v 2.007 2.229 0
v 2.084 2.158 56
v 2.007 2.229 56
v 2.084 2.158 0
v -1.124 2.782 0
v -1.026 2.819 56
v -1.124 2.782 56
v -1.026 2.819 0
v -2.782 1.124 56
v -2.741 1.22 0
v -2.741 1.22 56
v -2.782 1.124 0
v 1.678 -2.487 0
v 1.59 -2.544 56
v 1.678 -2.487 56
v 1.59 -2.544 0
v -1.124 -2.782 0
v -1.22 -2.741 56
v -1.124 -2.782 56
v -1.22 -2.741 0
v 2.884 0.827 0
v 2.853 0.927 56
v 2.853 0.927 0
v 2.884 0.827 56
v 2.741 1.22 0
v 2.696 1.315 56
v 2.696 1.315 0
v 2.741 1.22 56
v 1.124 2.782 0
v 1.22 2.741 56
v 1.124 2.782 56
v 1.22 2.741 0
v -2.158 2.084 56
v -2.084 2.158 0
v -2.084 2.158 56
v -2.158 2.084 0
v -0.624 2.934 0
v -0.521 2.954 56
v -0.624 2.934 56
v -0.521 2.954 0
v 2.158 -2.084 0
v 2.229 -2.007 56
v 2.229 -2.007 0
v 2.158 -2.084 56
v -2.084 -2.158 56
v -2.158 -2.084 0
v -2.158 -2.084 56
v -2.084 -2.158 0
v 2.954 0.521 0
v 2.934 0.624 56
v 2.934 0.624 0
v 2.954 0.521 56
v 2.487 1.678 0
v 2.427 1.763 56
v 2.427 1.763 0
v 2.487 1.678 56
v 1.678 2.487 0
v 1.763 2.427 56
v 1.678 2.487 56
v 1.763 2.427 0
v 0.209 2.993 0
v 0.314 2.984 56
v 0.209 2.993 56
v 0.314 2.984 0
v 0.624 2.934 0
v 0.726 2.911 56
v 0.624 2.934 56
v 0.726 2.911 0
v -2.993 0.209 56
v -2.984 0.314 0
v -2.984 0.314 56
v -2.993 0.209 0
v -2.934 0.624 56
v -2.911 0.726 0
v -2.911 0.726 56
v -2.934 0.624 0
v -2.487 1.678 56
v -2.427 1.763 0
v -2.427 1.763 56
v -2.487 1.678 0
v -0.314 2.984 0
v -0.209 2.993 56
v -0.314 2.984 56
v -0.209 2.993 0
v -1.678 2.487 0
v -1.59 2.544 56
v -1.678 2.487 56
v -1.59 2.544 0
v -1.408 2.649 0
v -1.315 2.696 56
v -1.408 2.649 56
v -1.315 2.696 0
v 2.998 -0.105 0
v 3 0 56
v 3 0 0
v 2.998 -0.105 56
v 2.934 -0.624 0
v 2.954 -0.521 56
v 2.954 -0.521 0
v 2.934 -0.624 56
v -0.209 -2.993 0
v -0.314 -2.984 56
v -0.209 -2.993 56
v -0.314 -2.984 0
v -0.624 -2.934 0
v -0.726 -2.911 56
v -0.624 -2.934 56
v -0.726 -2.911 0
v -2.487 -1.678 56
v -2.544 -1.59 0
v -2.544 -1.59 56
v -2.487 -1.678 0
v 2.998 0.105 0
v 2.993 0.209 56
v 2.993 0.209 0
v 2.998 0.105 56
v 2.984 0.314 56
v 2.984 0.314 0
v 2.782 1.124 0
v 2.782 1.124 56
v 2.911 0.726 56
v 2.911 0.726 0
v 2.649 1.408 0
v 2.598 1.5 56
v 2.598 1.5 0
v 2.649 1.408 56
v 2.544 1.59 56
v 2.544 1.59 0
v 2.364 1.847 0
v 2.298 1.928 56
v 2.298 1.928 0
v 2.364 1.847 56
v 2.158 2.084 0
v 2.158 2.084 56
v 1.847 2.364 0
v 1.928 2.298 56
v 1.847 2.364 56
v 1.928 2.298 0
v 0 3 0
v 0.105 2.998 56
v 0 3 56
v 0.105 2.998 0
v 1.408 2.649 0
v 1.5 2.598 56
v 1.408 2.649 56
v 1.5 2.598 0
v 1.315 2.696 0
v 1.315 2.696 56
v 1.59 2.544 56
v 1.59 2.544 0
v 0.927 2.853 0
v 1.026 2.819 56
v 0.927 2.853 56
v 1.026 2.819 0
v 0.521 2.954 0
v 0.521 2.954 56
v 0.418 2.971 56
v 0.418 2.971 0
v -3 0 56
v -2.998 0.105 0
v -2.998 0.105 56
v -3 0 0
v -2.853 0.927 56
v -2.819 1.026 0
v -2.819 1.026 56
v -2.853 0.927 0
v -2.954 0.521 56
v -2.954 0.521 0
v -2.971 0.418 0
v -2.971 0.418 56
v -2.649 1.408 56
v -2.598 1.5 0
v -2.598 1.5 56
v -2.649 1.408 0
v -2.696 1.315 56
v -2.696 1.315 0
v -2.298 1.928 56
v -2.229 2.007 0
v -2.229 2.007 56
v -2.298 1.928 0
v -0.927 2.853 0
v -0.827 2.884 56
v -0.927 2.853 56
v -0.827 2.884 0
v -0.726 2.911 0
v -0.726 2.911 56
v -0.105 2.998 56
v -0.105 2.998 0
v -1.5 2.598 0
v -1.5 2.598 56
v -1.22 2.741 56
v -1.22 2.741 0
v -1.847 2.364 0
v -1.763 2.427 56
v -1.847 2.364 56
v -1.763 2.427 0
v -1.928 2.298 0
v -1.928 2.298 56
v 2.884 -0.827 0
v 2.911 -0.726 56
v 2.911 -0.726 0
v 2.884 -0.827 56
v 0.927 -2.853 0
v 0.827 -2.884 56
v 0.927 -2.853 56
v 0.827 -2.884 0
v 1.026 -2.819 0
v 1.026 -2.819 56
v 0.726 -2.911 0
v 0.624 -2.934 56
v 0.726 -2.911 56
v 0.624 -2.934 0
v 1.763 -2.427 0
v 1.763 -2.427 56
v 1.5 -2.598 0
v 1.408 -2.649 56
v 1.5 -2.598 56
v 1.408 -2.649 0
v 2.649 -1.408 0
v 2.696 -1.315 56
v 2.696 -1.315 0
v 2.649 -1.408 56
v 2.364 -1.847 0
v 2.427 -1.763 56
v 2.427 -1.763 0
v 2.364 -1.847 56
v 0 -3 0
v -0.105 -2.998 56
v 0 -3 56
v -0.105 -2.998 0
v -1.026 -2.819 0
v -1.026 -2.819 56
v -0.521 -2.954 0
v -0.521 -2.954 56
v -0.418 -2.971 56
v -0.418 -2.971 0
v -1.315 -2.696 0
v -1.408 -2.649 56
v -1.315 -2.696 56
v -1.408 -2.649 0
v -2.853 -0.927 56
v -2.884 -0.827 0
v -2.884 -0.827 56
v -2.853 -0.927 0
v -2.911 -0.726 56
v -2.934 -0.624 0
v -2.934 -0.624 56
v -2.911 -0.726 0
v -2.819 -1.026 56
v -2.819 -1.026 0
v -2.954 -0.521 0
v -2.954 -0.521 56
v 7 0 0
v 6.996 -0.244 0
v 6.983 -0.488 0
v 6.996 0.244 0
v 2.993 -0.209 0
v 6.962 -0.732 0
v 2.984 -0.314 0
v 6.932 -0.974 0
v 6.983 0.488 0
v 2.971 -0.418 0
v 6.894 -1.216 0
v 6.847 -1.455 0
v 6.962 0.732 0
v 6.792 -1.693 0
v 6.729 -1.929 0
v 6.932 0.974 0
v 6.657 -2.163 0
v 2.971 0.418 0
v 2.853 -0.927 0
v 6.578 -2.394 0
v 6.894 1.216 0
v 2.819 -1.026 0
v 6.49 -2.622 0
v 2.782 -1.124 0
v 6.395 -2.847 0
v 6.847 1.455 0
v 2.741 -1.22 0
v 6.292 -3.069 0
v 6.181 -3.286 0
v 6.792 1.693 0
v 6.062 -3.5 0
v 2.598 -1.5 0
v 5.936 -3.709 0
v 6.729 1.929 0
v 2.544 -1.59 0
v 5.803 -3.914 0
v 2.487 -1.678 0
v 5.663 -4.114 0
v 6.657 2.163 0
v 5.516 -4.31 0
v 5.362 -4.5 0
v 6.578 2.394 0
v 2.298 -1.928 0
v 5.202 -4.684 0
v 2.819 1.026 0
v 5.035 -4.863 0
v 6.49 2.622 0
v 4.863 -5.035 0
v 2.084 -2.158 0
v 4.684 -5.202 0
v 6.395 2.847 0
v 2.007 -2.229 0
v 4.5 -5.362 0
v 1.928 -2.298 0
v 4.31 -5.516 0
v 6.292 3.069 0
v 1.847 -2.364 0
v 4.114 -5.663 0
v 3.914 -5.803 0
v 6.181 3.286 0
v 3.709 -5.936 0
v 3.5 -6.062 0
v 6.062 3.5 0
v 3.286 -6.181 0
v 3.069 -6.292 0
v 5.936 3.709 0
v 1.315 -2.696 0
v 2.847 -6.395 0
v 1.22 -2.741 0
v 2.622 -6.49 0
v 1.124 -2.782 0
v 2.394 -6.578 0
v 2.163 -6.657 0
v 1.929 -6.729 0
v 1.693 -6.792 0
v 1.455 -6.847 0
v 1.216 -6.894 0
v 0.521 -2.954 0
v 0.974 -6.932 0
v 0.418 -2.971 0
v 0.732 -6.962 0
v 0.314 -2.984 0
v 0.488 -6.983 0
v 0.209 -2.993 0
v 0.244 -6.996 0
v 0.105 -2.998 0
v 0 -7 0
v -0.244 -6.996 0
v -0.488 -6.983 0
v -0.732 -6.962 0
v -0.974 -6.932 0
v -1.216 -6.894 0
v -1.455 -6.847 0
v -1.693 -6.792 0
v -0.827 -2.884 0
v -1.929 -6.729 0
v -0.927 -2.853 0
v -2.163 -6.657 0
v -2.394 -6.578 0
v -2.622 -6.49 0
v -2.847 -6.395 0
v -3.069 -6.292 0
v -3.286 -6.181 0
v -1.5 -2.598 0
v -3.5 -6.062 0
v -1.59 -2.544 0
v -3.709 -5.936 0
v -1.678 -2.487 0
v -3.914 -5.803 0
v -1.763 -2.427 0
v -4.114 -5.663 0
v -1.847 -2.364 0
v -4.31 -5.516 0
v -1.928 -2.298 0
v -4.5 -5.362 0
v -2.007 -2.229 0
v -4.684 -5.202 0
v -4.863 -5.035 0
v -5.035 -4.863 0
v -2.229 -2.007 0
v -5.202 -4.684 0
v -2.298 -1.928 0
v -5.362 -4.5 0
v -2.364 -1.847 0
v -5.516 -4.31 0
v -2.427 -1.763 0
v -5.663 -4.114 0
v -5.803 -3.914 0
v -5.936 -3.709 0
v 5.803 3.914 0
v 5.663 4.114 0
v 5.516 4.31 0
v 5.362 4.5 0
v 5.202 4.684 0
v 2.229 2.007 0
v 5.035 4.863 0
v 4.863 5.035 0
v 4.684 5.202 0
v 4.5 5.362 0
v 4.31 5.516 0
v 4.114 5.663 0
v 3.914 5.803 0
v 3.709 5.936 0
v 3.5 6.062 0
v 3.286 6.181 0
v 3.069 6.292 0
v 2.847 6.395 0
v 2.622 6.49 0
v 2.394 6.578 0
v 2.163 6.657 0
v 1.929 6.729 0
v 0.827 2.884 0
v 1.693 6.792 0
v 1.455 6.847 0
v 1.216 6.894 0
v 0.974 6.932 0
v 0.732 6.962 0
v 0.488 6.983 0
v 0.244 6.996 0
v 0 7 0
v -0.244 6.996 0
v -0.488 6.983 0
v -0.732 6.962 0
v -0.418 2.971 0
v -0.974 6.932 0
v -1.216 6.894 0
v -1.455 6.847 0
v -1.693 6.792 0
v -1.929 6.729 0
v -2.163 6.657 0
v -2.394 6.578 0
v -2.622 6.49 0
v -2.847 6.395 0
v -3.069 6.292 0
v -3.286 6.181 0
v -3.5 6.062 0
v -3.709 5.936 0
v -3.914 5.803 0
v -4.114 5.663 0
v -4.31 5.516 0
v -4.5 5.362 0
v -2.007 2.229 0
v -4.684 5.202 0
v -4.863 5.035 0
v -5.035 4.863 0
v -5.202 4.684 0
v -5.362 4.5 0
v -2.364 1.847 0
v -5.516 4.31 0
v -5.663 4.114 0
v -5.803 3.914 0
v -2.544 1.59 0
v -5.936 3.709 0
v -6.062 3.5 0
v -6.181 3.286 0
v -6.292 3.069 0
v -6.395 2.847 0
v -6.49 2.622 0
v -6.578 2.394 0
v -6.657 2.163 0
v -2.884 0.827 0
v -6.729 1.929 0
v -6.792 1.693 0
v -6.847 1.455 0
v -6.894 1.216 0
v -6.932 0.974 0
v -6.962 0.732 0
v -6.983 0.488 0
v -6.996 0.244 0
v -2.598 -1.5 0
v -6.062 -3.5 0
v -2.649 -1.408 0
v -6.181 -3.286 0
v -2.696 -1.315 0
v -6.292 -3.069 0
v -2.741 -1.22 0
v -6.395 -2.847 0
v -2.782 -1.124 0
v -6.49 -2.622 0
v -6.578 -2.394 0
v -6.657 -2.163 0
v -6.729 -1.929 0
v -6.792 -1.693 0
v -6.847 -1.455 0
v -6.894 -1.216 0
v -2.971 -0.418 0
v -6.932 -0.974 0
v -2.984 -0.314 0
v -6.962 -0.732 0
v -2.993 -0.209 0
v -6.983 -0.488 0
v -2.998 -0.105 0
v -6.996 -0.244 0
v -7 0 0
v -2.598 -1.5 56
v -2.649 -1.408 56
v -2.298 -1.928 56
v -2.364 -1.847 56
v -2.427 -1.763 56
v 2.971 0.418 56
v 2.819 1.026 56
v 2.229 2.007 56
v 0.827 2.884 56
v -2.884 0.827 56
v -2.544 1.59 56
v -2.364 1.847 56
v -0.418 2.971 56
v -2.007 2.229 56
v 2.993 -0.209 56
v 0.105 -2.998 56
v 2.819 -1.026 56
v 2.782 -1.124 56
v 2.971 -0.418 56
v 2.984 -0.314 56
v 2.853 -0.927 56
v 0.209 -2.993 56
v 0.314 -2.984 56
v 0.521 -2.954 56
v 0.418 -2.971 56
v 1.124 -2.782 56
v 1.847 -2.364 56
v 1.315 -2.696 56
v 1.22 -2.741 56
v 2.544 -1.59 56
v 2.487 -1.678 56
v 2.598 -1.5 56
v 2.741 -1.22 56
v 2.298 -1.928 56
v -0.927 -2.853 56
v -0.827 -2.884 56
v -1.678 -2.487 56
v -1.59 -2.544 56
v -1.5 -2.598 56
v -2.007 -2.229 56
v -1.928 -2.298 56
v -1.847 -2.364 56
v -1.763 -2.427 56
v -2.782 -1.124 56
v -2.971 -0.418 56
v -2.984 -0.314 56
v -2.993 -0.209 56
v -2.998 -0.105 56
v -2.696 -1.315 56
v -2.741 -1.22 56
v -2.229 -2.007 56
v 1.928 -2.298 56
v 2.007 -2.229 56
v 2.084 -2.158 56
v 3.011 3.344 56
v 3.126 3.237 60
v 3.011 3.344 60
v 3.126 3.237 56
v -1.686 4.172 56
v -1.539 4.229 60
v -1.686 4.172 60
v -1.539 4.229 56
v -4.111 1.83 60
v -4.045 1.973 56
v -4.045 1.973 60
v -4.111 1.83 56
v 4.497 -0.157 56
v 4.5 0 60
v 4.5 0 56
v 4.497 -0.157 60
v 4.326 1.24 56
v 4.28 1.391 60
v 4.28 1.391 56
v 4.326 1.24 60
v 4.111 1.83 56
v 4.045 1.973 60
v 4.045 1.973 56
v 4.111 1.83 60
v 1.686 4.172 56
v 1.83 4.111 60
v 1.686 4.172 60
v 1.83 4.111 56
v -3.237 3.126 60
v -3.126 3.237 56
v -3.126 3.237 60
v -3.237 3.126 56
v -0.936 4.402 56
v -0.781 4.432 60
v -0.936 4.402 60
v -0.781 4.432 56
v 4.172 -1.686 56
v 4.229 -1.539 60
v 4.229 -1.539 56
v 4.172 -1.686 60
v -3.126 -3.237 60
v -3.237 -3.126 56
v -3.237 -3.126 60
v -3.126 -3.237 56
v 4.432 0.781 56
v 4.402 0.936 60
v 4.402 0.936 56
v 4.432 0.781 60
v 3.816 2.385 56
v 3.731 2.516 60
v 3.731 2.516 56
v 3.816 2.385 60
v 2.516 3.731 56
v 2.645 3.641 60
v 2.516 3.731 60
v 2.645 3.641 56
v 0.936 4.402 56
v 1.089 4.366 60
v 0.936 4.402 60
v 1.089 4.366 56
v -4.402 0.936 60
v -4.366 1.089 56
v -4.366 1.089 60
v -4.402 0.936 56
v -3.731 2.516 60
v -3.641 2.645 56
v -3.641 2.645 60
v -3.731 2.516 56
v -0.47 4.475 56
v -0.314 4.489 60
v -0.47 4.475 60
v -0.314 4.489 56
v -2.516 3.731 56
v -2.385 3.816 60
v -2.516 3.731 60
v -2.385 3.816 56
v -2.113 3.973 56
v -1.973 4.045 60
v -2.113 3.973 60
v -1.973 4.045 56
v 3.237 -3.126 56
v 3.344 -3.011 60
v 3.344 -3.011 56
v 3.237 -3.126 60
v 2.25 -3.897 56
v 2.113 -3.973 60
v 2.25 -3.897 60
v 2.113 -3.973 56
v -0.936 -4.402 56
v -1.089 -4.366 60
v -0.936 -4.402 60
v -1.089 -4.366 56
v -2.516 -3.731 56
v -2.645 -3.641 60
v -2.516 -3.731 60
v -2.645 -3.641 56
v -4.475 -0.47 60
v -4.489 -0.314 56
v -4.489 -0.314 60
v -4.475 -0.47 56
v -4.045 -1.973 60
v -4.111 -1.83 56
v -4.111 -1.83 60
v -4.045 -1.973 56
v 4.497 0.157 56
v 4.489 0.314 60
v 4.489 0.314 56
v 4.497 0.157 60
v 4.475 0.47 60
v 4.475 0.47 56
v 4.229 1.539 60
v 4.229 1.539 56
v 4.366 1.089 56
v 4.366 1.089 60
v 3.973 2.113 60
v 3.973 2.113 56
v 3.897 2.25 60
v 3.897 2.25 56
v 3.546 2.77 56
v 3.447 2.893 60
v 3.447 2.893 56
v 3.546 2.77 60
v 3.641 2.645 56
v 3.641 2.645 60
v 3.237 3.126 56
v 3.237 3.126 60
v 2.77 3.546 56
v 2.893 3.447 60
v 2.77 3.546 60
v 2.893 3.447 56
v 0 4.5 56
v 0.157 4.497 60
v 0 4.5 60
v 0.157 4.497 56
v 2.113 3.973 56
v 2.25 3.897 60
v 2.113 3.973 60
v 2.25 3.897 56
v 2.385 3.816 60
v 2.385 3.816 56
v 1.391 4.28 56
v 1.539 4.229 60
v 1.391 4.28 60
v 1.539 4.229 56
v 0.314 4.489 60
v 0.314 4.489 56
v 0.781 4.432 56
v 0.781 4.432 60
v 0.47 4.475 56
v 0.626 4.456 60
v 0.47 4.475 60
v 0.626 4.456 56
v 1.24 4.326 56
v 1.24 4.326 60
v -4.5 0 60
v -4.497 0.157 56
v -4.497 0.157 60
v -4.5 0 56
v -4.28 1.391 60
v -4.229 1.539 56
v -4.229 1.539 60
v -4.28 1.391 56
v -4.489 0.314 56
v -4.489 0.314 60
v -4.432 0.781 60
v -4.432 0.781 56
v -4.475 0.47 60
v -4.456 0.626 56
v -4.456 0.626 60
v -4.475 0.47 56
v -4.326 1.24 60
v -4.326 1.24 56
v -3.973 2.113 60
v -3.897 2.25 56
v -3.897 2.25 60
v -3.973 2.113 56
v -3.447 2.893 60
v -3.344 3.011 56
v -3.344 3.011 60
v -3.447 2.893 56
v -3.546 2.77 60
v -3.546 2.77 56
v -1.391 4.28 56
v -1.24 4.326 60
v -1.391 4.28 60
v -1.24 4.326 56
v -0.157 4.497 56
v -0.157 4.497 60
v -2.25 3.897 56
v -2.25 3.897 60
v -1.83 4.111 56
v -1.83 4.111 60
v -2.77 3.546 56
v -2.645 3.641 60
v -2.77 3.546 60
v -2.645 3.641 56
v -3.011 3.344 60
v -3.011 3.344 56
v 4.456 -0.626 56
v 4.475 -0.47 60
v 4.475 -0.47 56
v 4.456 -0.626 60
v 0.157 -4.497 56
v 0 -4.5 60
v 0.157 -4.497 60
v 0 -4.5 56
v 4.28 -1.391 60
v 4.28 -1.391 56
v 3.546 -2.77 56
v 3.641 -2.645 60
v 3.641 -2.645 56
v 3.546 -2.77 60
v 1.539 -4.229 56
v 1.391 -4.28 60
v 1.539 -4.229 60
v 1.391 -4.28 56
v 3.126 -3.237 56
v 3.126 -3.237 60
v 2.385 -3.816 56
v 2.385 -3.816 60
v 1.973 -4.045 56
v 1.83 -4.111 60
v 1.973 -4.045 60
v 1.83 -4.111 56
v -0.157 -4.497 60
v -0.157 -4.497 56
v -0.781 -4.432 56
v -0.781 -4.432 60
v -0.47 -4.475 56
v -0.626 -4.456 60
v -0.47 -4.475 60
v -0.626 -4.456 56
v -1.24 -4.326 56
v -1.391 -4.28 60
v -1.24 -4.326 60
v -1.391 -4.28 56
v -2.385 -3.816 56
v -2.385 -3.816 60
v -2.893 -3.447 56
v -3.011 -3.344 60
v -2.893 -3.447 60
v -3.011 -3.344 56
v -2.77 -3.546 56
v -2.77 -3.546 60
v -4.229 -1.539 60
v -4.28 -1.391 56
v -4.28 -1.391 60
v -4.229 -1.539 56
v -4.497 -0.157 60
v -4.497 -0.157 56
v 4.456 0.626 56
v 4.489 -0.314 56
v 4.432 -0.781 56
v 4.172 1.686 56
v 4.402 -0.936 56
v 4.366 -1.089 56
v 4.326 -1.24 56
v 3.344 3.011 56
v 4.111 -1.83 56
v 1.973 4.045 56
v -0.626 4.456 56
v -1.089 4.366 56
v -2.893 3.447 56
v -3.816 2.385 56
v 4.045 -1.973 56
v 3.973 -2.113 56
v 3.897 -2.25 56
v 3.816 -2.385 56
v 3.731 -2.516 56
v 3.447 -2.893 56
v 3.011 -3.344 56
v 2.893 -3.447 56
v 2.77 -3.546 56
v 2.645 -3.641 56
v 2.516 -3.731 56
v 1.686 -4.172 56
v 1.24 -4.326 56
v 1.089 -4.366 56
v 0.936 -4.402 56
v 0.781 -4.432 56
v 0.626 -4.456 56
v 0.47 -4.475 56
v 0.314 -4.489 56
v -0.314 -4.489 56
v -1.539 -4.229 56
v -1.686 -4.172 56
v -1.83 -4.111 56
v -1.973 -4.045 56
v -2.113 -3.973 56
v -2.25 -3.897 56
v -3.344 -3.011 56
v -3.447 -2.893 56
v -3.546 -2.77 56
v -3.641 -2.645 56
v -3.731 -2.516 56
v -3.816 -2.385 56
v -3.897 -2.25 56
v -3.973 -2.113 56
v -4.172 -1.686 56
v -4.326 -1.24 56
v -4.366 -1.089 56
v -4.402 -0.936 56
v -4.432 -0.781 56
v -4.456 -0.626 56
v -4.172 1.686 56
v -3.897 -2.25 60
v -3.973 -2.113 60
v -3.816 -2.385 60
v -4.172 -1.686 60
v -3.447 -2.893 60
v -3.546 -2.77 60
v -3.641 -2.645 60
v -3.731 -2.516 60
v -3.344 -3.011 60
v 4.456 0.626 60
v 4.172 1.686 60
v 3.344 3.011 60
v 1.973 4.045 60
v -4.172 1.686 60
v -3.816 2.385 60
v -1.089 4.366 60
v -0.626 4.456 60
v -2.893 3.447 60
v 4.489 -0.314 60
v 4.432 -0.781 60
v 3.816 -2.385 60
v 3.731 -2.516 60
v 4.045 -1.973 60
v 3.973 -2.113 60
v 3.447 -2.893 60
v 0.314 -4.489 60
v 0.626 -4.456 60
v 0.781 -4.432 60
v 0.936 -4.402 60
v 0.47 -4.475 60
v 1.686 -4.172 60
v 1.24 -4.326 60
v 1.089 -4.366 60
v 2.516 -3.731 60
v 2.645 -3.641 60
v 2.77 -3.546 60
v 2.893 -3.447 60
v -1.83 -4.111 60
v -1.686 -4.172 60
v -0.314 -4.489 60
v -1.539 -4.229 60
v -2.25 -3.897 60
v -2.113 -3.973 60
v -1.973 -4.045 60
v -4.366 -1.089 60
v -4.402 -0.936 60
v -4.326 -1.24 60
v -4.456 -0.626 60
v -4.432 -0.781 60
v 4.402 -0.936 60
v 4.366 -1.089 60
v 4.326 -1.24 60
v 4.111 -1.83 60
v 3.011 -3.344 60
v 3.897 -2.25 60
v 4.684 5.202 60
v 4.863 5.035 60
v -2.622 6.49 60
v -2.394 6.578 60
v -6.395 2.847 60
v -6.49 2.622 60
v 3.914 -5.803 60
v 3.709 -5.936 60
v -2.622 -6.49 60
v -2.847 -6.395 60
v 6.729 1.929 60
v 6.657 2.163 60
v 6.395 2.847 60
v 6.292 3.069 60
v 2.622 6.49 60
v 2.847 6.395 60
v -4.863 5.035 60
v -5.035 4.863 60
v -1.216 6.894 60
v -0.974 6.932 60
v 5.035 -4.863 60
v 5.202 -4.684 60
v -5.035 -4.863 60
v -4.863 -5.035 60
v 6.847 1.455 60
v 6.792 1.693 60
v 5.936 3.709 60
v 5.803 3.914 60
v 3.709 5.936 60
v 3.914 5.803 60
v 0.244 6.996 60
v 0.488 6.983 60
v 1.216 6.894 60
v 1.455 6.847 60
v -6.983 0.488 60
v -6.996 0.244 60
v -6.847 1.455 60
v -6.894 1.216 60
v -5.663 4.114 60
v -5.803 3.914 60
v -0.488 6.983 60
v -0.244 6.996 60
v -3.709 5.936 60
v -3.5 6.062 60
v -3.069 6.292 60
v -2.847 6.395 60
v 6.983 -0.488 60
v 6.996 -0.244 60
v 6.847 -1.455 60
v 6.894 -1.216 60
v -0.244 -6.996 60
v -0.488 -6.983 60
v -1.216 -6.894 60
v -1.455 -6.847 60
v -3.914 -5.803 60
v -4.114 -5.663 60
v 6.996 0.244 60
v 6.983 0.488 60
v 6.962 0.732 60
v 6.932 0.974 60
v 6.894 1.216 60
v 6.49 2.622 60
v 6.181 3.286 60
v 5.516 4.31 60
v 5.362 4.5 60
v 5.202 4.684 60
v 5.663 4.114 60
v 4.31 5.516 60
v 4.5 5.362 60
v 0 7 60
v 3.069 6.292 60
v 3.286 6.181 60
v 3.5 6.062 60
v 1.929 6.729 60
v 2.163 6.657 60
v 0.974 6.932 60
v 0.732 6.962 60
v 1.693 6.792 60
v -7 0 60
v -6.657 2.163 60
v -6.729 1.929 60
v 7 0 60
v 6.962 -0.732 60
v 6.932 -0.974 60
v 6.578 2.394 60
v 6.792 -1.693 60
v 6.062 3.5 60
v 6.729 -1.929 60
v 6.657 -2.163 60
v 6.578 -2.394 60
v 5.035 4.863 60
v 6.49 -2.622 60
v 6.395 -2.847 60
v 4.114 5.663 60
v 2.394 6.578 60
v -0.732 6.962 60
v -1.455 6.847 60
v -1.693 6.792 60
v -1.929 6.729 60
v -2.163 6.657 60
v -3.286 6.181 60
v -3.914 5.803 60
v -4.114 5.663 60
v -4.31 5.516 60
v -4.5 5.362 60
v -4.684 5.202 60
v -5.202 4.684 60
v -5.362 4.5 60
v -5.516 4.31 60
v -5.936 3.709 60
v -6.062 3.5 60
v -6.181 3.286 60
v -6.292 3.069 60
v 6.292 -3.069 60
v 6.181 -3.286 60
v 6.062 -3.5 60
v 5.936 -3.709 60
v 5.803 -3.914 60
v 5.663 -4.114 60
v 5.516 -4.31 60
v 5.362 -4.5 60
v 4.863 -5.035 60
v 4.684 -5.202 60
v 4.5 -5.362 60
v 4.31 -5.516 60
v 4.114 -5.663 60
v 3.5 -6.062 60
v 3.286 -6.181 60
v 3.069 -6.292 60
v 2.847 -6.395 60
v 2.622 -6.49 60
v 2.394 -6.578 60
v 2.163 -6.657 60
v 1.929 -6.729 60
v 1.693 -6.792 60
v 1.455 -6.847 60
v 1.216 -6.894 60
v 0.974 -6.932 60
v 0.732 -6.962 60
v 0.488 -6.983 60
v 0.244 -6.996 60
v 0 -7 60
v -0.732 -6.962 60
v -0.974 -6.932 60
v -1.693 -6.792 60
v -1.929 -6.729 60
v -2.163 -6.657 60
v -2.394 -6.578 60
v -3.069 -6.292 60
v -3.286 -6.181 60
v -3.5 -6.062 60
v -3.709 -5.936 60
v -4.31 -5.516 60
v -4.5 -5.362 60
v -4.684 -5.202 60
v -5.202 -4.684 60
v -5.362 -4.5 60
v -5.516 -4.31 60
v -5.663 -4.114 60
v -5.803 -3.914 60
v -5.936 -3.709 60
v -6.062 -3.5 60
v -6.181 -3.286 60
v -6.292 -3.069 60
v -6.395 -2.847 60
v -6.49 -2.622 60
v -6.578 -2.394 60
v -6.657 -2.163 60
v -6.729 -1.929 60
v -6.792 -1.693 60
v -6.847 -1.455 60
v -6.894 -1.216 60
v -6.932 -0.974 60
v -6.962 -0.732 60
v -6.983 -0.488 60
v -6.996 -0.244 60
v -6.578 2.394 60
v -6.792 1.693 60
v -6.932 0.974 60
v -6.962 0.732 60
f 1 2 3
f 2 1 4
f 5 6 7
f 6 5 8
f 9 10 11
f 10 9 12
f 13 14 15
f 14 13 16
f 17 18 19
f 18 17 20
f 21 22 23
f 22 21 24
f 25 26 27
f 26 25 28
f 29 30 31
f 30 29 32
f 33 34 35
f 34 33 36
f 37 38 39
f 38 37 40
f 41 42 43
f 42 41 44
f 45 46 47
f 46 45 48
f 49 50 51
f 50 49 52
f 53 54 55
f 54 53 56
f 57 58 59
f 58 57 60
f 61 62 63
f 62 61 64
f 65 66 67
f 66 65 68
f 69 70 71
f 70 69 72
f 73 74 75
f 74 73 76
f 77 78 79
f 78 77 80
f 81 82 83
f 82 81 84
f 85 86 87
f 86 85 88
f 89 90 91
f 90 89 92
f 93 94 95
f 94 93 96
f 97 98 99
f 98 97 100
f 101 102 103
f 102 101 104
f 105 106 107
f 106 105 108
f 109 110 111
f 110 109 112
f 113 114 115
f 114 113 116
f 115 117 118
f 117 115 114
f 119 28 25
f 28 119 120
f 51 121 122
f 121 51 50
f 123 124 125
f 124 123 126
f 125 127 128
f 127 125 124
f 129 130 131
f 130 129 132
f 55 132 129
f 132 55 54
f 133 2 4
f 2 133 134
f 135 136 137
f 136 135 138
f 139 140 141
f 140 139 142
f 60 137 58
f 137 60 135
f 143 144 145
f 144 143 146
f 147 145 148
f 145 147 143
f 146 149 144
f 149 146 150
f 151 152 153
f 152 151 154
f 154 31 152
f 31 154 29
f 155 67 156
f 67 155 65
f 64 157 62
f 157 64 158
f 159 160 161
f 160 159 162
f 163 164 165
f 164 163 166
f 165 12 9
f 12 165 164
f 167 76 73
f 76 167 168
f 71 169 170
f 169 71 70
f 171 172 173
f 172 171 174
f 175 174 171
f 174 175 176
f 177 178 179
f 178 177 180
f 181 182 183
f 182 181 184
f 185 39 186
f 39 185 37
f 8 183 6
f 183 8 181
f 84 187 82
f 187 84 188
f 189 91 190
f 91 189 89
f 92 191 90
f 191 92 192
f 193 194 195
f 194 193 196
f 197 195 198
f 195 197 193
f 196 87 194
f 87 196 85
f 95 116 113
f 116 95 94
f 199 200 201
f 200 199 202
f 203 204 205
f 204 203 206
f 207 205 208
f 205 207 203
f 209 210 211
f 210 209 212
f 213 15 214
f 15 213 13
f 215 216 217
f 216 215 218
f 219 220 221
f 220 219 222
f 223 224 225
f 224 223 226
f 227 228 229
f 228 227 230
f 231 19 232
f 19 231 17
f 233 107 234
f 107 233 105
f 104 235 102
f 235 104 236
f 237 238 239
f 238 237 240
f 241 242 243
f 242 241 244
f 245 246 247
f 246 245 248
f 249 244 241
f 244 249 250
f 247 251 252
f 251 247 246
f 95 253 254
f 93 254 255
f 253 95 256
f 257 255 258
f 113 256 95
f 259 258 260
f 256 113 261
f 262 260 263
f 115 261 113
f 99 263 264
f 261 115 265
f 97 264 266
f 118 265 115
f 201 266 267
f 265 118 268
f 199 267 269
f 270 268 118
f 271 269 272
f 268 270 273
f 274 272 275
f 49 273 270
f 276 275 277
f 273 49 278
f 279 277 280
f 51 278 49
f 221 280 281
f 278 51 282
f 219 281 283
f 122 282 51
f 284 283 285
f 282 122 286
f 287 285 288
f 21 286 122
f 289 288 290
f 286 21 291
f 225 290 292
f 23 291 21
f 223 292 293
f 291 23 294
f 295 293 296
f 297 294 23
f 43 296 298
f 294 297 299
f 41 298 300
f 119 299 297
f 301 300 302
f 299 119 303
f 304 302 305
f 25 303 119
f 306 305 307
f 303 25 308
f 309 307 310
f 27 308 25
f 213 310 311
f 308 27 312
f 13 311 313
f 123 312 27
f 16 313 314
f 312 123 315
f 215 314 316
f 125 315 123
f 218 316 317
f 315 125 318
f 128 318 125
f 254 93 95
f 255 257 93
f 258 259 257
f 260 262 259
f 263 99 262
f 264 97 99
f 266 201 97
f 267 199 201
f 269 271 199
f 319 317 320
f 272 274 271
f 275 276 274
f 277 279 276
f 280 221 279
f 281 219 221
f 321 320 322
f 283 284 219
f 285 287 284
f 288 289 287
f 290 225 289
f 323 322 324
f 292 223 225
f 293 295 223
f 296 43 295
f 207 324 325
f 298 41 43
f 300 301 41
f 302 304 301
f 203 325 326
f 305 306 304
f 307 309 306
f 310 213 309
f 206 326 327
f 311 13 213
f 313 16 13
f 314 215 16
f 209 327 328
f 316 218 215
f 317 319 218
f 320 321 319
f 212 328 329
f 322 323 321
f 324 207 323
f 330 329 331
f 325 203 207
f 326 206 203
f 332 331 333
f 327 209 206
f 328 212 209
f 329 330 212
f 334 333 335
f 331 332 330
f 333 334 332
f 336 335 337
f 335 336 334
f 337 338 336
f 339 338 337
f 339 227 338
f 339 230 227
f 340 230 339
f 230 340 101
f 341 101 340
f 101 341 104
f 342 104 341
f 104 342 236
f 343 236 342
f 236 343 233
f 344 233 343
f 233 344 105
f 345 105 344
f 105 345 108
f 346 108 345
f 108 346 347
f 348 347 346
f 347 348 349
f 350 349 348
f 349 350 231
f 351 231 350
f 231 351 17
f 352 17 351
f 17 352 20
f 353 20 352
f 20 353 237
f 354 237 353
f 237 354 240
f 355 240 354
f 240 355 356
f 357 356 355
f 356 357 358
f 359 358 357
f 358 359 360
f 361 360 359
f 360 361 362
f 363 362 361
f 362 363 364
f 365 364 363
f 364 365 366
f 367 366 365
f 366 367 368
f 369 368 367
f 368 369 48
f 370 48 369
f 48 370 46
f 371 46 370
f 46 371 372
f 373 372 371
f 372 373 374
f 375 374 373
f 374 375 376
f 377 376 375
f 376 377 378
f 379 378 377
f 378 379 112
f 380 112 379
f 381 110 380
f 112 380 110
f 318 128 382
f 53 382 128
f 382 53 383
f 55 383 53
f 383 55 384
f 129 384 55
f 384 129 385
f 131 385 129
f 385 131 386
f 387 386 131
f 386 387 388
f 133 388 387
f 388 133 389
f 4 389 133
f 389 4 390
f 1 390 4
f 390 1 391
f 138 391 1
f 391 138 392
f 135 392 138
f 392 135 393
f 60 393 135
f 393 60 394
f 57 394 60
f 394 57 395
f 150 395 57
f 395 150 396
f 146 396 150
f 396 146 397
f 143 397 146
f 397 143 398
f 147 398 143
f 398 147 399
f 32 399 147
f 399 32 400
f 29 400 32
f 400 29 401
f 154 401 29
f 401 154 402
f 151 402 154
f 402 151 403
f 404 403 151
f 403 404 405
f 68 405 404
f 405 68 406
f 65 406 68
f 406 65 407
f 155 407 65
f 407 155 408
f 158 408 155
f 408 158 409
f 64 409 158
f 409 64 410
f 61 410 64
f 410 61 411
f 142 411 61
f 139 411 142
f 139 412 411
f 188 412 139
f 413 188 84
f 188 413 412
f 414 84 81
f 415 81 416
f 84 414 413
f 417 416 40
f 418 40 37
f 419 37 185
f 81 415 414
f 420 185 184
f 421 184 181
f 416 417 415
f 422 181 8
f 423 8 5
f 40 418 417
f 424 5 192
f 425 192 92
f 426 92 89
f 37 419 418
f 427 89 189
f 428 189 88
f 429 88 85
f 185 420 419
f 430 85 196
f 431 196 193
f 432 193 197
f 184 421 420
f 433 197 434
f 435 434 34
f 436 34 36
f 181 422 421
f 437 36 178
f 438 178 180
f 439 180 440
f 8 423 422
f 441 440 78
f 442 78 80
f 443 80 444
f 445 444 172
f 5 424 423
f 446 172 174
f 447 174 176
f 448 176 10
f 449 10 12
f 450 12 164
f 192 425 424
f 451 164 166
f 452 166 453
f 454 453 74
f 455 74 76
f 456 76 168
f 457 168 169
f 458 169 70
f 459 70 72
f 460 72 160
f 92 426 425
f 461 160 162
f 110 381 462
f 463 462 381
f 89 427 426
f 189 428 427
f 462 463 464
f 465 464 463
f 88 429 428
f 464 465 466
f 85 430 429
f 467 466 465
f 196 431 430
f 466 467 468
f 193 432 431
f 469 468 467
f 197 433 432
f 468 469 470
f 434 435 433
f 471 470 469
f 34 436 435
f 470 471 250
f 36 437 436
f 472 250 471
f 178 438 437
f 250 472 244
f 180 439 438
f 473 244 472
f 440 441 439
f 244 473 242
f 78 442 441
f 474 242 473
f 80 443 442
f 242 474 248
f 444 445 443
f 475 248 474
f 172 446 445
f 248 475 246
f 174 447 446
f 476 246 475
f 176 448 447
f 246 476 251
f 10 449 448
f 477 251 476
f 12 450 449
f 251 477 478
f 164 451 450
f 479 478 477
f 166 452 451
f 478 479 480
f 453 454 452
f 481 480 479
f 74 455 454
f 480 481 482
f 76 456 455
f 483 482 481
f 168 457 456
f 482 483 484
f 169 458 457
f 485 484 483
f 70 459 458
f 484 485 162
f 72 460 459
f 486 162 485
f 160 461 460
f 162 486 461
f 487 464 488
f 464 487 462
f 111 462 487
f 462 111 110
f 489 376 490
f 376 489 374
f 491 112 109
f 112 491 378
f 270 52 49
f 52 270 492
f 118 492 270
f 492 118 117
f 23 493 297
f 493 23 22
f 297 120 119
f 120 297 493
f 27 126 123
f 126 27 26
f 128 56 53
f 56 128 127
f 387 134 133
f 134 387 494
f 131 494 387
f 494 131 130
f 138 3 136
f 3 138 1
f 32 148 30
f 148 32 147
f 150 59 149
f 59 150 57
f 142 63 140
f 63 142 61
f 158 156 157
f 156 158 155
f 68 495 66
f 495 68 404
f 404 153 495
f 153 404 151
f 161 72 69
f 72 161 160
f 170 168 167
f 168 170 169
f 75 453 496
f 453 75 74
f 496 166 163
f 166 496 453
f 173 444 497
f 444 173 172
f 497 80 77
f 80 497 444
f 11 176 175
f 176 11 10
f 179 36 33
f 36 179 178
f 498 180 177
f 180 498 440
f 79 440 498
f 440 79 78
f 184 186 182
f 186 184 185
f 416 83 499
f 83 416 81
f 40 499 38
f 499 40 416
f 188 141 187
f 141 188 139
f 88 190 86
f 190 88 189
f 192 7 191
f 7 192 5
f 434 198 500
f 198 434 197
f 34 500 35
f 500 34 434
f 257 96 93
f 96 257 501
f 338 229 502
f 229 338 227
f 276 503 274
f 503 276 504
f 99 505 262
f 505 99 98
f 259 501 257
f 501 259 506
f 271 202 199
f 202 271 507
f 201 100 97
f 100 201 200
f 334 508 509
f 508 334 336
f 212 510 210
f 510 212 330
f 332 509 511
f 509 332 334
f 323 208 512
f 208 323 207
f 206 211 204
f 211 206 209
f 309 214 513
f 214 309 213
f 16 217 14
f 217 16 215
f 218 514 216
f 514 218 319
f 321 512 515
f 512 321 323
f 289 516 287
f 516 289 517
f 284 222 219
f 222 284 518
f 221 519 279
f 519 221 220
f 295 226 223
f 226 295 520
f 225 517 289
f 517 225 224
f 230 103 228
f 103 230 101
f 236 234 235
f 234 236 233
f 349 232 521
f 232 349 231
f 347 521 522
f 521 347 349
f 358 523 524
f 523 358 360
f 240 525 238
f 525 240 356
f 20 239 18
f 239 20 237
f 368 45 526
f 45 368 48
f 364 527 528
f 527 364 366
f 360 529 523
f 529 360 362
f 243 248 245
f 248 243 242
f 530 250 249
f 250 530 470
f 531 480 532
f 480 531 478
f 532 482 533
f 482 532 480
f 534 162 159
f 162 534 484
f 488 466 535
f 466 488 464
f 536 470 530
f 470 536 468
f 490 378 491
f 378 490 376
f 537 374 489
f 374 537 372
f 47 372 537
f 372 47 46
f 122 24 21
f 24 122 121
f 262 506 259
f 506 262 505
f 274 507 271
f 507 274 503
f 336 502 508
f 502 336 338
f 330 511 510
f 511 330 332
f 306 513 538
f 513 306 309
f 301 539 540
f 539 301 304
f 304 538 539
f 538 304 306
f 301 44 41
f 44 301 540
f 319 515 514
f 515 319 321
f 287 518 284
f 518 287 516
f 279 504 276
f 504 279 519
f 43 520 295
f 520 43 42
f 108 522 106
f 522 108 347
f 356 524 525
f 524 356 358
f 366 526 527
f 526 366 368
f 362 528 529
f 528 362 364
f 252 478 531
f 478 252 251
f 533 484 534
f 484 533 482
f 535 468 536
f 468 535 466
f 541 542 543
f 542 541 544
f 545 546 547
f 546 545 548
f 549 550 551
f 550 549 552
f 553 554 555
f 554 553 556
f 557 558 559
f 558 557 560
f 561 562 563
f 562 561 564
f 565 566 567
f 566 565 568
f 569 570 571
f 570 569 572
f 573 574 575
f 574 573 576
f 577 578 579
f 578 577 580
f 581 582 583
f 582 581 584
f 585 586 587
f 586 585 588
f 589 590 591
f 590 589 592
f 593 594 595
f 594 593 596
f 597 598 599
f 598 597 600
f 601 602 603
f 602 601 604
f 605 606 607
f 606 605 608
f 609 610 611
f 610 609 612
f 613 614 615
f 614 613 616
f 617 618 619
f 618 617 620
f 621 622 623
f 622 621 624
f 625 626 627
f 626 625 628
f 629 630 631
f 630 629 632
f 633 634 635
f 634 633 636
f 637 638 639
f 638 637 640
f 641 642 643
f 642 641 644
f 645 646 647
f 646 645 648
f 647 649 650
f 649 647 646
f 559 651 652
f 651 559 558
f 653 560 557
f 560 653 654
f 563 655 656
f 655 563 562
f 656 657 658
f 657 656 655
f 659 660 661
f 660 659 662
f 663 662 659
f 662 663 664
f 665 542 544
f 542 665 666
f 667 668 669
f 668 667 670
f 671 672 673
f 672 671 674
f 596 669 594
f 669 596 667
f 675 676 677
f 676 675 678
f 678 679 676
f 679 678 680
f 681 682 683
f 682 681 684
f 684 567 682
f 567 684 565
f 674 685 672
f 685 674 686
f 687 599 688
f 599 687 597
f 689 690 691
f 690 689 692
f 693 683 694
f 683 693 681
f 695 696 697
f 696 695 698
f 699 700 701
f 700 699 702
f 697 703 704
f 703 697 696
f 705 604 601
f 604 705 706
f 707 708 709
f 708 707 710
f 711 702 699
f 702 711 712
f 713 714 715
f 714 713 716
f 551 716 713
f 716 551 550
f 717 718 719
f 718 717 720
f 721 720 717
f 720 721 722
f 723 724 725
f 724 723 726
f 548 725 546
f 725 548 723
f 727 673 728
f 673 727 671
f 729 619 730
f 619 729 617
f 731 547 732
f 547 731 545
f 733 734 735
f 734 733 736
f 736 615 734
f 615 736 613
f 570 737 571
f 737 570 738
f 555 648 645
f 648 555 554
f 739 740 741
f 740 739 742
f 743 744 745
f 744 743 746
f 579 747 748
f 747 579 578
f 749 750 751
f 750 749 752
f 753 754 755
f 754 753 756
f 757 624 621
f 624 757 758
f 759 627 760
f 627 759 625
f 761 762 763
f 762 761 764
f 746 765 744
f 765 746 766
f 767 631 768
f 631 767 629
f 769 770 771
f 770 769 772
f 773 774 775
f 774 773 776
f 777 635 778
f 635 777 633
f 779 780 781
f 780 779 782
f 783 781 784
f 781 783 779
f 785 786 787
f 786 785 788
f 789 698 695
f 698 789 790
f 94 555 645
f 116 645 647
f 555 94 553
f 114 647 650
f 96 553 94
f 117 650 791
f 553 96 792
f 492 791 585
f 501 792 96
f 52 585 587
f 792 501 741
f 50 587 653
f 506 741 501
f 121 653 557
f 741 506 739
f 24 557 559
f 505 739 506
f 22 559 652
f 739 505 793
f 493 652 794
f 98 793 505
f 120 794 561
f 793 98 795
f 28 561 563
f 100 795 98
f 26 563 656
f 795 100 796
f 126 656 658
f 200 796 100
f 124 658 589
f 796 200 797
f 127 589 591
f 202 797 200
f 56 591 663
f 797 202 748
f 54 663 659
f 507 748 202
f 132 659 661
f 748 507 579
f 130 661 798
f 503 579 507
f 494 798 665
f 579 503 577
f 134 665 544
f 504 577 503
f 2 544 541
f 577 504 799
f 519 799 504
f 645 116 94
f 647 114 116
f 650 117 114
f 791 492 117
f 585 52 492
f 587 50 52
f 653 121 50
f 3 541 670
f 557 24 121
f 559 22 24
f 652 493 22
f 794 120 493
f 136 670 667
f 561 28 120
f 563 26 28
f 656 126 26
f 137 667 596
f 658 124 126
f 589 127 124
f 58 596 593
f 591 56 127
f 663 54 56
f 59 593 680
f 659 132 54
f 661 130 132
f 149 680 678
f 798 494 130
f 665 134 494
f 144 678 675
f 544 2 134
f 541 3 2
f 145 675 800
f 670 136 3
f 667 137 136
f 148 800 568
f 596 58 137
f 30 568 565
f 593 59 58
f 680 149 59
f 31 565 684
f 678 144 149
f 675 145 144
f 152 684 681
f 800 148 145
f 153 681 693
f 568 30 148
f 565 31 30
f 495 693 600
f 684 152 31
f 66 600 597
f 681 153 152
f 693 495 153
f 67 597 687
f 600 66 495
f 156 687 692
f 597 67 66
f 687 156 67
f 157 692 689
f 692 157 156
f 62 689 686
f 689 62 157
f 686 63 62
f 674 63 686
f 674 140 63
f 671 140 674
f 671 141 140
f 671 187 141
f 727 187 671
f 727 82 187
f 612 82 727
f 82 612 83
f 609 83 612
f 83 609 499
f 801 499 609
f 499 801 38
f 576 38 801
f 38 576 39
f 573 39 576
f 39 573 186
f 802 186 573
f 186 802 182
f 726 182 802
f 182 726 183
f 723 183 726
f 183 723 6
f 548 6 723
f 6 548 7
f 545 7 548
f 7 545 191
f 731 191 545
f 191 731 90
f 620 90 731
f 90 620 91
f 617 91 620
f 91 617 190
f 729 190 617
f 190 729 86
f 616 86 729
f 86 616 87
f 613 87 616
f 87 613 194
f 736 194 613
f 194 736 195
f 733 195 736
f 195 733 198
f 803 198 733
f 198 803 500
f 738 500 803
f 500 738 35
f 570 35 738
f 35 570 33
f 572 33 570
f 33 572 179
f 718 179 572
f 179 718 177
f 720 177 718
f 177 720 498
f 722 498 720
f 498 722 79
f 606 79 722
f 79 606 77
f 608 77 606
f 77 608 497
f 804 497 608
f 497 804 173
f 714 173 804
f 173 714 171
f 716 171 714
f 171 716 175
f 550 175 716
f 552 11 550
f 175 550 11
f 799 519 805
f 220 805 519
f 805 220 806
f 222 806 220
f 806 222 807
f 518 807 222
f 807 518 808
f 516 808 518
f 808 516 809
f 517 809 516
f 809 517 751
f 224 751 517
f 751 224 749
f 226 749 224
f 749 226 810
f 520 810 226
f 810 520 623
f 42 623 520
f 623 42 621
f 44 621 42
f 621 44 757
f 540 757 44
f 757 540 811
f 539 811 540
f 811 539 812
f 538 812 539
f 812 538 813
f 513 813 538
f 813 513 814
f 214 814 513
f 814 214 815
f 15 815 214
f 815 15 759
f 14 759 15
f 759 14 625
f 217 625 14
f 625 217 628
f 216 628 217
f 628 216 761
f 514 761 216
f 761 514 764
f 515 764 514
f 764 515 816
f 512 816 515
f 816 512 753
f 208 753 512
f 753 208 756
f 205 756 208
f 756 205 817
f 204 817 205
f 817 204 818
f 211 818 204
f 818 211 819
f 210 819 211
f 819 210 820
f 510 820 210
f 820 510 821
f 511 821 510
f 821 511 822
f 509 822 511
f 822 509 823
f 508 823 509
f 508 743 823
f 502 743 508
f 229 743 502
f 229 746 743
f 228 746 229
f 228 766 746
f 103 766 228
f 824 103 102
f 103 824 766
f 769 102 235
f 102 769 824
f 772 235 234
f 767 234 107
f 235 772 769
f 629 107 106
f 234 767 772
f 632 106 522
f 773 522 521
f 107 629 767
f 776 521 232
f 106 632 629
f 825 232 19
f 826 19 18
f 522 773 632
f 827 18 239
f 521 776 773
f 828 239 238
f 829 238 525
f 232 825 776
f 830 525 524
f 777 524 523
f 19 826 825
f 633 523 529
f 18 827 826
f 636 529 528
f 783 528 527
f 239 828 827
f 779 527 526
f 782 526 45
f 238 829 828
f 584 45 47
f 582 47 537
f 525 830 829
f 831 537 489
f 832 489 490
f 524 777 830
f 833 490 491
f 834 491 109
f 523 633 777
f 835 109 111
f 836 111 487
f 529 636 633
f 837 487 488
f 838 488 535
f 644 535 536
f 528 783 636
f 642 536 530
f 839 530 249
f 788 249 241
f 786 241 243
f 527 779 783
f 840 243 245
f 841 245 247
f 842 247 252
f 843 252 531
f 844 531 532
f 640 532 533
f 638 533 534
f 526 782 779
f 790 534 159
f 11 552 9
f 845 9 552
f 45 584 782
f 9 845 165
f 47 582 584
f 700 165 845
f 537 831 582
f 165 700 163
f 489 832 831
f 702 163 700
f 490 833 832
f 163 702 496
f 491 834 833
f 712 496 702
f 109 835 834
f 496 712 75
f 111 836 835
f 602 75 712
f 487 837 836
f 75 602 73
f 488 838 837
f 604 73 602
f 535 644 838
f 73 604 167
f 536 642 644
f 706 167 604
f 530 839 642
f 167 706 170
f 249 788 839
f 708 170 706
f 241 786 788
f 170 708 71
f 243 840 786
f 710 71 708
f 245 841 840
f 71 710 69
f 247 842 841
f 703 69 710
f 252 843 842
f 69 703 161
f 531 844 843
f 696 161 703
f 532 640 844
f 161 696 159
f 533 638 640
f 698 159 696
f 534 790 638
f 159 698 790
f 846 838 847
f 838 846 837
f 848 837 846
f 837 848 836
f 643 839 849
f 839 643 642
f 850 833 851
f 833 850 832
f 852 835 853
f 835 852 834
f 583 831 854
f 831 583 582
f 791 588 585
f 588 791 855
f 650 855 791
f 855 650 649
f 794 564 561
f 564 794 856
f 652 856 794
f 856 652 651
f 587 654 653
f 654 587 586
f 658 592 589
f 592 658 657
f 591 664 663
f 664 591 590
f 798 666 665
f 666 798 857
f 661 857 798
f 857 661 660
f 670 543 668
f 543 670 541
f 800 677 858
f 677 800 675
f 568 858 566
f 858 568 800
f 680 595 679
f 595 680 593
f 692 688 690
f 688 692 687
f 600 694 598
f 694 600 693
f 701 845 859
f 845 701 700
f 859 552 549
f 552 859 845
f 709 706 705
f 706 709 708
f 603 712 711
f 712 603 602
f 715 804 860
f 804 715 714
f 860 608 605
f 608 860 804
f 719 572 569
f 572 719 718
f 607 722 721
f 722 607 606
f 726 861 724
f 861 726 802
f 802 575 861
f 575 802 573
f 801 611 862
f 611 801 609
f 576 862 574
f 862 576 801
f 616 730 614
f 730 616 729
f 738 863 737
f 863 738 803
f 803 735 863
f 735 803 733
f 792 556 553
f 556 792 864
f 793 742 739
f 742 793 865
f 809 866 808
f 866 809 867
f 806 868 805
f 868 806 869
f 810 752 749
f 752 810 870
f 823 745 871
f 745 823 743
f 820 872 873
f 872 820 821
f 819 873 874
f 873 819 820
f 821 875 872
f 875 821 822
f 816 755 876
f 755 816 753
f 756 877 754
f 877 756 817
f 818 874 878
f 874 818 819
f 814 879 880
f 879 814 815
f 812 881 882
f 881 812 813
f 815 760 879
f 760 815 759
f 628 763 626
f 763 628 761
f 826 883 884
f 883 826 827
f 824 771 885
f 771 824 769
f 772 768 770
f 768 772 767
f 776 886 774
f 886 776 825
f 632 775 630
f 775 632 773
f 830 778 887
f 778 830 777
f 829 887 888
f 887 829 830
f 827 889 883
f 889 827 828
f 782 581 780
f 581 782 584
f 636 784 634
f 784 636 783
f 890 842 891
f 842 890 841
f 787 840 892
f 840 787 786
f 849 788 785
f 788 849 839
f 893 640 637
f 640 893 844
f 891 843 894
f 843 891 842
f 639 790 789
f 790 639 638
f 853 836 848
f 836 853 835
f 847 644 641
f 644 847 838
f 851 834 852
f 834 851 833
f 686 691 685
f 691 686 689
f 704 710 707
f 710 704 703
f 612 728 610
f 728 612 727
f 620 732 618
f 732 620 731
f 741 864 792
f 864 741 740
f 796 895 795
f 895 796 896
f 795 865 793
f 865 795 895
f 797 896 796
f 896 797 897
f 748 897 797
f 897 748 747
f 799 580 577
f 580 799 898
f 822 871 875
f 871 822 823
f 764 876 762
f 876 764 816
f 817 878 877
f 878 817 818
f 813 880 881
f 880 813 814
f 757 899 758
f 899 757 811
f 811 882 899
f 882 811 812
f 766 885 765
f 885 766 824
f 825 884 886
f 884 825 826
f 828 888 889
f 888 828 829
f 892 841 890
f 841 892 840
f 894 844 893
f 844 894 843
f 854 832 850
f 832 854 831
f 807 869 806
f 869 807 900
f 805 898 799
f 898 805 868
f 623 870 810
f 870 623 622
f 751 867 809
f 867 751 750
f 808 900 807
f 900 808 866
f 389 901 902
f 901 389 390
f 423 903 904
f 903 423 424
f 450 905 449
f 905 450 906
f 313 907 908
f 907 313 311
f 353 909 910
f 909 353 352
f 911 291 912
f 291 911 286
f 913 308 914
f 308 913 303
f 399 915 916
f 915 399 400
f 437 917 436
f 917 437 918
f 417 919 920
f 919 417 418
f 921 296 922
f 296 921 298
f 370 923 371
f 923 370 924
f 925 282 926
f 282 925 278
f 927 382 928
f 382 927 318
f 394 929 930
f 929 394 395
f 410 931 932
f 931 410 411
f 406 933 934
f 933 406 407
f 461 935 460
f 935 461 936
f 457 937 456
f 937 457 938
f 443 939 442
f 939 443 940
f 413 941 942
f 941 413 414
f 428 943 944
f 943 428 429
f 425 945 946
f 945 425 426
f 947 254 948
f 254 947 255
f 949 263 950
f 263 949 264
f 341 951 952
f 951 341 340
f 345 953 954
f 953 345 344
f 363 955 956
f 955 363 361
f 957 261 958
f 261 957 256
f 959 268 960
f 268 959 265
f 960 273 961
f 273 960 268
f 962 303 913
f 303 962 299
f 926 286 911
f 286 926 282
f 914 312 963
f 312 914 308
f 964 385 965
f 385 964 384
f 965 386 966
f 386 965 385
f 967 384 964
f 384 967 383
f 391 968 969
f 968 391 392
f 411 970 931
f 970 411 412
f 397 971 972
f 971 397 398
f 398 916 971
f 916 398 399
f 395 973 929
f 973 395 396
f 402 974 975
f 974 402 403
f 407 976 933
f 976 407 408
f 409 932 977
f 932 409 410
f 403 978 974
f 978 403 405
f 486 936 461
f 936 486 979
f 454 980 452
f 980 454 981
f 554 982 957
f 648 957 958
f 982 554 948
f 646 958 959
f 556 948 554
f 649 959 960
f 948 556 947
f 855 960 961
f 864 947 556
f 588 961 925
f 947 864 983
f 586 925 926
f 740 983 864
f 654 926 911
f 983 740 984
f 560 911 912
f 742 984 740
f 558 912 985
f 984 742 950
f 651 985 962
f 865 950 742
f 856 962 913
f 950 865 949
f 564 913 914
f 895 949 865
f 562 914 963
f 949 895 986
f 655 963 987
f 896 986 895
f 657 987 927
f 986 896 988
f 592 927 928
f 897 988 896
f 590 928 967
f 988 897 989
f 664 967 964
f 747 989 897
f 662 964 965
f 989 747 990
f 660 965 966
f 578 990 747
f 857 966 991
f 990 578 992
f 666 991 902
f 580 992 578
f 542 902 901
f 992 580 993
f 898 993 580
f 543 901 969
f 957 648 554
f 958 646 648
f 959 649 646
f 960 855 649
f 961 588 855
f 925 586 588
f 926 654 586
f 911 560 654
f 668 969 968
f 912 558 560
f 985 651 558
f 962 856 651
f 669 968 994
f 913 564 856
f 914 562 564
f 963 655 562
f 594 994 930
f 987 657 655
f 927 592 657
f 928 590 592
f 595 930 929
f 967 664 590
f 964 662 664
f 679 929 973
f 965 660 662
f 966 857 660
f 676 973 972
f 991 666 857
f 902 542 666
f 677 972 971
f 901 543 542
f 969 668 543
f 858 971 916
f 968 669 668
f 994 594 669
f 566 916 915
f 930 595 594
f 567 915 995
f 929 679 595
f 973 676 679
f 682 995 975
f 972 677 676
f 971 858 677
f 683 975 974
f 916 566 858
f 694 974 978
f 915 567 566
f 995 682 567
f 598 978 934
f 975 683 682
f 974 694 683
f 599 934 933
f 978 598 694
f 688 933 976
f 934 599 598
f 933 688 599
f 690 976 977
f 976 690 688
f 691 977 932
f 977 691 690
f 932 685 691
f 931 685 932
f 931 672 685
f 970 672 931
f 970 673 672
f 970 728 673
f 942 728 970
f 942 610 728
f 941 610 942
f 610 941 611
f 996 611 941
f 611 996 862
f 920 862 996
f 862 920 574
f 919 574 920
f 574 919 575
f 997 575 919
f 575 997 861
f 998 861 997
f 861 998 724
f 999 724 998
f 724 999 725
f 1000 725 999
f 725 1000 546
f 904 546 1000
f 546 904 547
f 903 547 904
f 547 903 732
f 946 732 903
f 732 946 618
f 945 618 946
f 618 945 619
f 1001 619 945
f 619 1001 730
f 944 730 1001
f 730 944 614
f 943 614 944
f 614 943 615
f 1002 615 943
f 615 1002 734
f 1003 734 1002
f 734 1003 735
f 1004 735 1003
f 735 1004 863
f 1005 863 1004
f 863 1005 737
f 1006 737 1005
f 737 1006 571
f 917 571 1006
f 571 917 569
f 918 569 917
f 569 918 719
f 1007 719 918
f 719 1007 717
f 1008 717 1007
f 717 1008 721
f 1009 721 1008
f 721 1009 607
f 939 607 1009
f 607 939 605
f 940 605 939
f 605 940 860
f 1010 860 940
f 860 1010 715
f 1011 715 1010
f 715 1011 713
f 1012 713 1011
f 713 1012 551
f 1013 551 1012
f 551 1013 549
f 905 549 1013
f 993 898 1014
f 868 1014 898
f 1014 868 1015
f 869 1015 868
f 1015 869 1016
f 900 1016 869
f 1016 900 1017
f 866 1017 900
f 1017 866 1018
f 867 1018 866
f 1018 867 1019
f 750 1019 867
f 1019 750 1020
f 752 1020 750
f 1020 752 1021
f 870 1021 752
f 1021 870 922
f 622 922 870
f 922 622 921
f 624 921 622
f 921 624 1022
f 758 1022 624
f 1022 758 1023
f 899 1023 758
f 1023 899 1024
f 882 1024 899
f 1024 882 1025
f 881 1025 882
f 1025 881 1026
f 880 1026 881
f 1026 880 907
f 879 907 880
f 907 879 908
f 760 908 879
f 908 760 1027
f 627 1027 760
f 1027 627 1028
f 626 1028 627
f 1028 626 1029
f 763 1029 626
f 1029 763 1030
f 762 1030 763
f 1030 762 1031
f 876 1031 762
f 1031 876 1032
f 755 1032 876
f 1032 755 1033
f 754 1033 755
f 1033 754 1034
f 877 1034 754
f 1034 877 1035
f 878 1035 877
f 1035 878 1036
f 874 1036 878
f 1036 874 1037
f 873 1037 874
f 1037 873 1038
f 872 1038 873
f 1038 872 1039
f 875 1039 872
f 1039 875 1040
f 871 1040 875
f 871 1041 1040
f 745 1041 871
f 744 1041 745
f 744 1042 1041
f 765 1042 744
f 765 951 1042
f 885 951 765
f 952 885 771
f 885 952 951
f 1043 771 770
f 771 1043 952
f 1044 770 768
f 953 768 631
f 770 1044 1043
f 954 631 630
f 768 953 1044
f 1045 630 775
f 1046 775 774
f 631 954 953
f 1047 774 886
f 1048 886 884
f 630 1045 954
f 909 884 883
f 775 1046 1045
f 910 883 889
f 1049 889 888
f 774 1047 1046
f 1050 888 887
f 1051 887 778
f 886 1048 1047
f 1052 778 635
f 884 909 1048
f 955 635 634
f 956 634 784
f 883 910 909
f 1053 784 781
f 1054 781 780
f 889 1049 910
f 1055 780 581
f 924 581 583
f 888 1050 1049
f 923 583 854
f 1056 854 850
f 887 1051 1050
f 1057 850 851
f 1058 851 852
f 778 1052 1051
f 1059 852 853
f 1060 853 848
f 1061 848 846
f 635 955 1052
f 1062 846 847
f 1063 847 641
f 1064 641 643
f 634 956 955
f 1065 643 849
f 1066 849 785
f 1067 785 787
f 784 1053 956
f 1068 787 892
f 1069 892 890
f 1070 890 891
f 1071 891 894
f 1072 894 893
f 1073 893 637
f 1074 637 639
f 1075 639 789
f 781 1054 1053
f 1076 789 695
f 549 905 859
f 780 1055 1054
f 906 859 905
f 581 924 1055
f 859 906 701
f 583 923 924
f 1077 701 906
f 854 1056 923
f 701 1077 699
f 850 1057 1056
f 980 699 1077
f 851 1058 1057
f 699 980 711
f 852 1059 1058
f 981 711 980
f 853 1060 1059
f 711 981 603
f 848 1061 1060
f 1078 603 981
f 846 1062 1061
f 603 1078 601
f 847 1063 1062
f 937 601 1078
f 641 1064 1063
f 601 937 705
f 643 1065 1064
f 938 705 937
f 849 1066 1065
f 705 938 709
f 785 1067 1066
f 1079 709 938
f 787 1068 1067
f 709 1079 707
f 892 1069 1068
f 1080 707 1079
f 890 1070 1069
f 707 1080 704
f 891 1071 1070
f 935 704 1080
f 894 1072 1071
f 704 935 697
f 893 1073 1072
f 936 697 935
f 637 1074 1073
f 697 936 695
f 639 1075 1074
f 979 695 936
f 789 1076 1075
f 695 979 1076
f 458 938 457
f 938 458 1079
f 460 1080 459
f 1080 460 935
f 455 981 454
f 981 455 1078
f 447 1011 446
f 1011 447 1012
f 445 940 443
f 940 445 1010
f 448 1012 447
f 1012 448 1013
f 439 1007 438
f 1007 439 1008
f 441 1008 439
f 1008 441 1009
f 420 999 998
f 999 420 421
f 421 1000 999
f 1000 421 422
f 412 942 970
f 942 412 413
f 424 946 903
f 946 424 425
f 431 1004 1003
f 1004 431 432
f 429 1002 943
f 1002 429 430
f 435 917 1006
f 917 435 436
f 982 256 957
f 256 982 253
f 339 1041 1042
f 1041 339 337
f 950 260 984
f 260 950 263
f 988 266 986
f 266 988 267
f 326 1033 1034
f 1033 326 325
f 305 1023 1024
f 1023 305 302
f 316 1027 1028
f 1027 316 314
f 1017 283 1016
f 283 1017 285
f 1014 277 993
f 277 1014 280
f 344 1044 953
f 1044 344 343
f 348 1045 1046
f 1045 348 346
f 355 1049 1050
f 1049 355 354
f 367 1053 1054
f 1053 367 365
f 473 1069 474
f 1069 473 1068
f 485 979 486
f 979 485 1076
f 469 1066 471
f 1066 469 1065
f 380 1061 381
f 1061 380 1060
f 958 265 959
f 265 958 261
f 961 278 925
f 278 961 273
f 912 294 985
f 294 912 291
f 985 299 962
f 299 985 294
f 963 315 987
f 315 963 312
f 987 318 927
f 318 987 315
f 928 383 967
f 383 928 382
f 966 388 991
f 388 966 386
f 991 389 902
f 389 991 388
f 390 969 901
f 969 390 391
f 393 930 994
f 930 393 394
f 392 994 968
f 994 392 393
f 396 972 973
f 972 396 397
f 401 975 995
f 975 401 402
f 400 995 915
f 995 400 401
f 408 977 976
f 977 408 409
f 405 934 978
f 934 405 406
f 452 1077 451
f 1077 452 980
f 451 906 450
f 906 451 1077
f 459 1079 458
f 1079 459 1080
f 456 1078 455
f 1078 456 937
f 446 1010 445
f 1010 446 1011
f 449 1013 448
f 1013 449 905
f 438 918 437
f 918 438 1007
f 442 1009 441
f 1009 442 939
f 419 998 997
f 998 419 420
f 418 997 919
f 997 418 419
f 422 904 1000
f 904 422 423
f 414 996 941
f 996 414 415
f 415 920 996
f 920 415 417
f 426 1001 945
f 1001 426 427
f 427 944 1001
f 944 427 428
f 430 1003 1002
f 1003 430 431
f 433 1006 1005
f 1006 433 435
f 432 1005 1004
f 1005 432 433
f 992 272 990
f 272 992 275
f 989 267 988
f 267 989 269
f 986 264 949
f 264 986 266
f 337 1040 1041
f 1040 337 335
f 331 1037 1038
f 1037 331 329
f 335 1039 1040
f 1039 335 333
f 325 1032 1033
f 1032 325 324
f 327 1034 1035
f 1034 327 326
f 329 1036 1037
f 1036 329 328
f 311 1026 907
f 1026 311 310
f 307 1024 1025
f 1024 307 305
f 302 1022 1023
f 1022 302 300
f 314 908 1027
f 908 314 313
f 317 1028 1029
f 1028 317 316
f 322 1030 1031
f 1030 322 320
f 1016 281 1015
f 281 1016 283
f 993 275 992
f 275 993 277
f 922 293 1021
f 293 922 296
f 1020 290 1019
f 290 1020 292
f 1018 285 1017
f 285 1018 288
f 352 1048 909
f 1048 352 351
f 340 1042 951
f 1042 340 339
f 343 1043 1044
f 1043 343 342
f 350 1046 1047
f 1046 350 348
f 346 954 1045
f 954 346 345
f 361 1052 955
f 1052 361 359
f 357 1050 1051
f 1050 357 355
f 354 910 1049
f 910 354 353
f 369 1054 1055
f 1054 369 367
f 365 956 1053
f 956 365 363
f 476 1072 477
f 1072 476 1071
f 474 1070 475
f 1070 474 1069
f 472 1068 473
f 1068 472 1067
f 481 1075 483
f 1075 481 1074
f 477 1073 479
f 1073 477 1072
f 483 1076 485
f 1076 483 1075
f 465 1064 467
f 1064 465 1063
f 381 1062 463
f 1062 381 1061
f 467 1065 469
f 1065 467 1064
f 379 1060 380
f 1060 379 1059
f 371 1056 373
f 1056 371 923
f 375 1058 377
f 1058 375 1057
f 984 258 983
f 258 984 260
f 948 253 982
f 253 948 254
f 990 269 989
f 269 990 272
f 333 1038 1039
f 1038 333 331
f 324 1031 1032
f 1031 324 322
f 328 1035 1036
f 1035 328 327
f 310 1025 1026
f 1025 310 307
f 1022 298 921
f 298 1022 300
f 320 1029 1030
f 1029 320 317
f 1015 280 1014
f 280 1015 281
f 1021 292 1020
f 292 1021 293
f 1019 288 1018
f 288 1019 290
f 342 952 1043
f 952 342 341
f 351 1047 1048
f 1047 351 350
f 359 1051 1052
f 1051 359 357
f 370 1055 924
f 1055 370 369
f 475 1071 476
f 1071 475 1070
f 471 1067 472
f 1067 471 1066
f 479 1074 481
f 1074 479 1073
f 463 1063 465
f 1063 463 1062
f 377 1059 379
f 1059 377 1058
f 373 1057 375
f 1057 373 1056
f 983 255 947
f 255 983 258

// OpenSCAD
// Spacer for Lid to upside down lid.
// to allow for an up-side-down lid to be mounted on top for tool storage.

// 70mm M4 bolt.
// 65mm thread (excludes head/nut space).
// 60mm (2x2.5mm thickness for lids)
height = 60;

$fn=180;

difference() {
    union() {
        cylinder(d=14, h=height);
    }
    union() {
        // 6mm perfect for a heat fit.
        cylinder(d=6, h=height);
        
        //recess part way so that the bolt on the box lid 
        // can have a nut to hold it captive when the support is not used.
        
        translate([0,0,height-4]) {
            cylinder(d=9, h=4.1);
        }
    }
}
